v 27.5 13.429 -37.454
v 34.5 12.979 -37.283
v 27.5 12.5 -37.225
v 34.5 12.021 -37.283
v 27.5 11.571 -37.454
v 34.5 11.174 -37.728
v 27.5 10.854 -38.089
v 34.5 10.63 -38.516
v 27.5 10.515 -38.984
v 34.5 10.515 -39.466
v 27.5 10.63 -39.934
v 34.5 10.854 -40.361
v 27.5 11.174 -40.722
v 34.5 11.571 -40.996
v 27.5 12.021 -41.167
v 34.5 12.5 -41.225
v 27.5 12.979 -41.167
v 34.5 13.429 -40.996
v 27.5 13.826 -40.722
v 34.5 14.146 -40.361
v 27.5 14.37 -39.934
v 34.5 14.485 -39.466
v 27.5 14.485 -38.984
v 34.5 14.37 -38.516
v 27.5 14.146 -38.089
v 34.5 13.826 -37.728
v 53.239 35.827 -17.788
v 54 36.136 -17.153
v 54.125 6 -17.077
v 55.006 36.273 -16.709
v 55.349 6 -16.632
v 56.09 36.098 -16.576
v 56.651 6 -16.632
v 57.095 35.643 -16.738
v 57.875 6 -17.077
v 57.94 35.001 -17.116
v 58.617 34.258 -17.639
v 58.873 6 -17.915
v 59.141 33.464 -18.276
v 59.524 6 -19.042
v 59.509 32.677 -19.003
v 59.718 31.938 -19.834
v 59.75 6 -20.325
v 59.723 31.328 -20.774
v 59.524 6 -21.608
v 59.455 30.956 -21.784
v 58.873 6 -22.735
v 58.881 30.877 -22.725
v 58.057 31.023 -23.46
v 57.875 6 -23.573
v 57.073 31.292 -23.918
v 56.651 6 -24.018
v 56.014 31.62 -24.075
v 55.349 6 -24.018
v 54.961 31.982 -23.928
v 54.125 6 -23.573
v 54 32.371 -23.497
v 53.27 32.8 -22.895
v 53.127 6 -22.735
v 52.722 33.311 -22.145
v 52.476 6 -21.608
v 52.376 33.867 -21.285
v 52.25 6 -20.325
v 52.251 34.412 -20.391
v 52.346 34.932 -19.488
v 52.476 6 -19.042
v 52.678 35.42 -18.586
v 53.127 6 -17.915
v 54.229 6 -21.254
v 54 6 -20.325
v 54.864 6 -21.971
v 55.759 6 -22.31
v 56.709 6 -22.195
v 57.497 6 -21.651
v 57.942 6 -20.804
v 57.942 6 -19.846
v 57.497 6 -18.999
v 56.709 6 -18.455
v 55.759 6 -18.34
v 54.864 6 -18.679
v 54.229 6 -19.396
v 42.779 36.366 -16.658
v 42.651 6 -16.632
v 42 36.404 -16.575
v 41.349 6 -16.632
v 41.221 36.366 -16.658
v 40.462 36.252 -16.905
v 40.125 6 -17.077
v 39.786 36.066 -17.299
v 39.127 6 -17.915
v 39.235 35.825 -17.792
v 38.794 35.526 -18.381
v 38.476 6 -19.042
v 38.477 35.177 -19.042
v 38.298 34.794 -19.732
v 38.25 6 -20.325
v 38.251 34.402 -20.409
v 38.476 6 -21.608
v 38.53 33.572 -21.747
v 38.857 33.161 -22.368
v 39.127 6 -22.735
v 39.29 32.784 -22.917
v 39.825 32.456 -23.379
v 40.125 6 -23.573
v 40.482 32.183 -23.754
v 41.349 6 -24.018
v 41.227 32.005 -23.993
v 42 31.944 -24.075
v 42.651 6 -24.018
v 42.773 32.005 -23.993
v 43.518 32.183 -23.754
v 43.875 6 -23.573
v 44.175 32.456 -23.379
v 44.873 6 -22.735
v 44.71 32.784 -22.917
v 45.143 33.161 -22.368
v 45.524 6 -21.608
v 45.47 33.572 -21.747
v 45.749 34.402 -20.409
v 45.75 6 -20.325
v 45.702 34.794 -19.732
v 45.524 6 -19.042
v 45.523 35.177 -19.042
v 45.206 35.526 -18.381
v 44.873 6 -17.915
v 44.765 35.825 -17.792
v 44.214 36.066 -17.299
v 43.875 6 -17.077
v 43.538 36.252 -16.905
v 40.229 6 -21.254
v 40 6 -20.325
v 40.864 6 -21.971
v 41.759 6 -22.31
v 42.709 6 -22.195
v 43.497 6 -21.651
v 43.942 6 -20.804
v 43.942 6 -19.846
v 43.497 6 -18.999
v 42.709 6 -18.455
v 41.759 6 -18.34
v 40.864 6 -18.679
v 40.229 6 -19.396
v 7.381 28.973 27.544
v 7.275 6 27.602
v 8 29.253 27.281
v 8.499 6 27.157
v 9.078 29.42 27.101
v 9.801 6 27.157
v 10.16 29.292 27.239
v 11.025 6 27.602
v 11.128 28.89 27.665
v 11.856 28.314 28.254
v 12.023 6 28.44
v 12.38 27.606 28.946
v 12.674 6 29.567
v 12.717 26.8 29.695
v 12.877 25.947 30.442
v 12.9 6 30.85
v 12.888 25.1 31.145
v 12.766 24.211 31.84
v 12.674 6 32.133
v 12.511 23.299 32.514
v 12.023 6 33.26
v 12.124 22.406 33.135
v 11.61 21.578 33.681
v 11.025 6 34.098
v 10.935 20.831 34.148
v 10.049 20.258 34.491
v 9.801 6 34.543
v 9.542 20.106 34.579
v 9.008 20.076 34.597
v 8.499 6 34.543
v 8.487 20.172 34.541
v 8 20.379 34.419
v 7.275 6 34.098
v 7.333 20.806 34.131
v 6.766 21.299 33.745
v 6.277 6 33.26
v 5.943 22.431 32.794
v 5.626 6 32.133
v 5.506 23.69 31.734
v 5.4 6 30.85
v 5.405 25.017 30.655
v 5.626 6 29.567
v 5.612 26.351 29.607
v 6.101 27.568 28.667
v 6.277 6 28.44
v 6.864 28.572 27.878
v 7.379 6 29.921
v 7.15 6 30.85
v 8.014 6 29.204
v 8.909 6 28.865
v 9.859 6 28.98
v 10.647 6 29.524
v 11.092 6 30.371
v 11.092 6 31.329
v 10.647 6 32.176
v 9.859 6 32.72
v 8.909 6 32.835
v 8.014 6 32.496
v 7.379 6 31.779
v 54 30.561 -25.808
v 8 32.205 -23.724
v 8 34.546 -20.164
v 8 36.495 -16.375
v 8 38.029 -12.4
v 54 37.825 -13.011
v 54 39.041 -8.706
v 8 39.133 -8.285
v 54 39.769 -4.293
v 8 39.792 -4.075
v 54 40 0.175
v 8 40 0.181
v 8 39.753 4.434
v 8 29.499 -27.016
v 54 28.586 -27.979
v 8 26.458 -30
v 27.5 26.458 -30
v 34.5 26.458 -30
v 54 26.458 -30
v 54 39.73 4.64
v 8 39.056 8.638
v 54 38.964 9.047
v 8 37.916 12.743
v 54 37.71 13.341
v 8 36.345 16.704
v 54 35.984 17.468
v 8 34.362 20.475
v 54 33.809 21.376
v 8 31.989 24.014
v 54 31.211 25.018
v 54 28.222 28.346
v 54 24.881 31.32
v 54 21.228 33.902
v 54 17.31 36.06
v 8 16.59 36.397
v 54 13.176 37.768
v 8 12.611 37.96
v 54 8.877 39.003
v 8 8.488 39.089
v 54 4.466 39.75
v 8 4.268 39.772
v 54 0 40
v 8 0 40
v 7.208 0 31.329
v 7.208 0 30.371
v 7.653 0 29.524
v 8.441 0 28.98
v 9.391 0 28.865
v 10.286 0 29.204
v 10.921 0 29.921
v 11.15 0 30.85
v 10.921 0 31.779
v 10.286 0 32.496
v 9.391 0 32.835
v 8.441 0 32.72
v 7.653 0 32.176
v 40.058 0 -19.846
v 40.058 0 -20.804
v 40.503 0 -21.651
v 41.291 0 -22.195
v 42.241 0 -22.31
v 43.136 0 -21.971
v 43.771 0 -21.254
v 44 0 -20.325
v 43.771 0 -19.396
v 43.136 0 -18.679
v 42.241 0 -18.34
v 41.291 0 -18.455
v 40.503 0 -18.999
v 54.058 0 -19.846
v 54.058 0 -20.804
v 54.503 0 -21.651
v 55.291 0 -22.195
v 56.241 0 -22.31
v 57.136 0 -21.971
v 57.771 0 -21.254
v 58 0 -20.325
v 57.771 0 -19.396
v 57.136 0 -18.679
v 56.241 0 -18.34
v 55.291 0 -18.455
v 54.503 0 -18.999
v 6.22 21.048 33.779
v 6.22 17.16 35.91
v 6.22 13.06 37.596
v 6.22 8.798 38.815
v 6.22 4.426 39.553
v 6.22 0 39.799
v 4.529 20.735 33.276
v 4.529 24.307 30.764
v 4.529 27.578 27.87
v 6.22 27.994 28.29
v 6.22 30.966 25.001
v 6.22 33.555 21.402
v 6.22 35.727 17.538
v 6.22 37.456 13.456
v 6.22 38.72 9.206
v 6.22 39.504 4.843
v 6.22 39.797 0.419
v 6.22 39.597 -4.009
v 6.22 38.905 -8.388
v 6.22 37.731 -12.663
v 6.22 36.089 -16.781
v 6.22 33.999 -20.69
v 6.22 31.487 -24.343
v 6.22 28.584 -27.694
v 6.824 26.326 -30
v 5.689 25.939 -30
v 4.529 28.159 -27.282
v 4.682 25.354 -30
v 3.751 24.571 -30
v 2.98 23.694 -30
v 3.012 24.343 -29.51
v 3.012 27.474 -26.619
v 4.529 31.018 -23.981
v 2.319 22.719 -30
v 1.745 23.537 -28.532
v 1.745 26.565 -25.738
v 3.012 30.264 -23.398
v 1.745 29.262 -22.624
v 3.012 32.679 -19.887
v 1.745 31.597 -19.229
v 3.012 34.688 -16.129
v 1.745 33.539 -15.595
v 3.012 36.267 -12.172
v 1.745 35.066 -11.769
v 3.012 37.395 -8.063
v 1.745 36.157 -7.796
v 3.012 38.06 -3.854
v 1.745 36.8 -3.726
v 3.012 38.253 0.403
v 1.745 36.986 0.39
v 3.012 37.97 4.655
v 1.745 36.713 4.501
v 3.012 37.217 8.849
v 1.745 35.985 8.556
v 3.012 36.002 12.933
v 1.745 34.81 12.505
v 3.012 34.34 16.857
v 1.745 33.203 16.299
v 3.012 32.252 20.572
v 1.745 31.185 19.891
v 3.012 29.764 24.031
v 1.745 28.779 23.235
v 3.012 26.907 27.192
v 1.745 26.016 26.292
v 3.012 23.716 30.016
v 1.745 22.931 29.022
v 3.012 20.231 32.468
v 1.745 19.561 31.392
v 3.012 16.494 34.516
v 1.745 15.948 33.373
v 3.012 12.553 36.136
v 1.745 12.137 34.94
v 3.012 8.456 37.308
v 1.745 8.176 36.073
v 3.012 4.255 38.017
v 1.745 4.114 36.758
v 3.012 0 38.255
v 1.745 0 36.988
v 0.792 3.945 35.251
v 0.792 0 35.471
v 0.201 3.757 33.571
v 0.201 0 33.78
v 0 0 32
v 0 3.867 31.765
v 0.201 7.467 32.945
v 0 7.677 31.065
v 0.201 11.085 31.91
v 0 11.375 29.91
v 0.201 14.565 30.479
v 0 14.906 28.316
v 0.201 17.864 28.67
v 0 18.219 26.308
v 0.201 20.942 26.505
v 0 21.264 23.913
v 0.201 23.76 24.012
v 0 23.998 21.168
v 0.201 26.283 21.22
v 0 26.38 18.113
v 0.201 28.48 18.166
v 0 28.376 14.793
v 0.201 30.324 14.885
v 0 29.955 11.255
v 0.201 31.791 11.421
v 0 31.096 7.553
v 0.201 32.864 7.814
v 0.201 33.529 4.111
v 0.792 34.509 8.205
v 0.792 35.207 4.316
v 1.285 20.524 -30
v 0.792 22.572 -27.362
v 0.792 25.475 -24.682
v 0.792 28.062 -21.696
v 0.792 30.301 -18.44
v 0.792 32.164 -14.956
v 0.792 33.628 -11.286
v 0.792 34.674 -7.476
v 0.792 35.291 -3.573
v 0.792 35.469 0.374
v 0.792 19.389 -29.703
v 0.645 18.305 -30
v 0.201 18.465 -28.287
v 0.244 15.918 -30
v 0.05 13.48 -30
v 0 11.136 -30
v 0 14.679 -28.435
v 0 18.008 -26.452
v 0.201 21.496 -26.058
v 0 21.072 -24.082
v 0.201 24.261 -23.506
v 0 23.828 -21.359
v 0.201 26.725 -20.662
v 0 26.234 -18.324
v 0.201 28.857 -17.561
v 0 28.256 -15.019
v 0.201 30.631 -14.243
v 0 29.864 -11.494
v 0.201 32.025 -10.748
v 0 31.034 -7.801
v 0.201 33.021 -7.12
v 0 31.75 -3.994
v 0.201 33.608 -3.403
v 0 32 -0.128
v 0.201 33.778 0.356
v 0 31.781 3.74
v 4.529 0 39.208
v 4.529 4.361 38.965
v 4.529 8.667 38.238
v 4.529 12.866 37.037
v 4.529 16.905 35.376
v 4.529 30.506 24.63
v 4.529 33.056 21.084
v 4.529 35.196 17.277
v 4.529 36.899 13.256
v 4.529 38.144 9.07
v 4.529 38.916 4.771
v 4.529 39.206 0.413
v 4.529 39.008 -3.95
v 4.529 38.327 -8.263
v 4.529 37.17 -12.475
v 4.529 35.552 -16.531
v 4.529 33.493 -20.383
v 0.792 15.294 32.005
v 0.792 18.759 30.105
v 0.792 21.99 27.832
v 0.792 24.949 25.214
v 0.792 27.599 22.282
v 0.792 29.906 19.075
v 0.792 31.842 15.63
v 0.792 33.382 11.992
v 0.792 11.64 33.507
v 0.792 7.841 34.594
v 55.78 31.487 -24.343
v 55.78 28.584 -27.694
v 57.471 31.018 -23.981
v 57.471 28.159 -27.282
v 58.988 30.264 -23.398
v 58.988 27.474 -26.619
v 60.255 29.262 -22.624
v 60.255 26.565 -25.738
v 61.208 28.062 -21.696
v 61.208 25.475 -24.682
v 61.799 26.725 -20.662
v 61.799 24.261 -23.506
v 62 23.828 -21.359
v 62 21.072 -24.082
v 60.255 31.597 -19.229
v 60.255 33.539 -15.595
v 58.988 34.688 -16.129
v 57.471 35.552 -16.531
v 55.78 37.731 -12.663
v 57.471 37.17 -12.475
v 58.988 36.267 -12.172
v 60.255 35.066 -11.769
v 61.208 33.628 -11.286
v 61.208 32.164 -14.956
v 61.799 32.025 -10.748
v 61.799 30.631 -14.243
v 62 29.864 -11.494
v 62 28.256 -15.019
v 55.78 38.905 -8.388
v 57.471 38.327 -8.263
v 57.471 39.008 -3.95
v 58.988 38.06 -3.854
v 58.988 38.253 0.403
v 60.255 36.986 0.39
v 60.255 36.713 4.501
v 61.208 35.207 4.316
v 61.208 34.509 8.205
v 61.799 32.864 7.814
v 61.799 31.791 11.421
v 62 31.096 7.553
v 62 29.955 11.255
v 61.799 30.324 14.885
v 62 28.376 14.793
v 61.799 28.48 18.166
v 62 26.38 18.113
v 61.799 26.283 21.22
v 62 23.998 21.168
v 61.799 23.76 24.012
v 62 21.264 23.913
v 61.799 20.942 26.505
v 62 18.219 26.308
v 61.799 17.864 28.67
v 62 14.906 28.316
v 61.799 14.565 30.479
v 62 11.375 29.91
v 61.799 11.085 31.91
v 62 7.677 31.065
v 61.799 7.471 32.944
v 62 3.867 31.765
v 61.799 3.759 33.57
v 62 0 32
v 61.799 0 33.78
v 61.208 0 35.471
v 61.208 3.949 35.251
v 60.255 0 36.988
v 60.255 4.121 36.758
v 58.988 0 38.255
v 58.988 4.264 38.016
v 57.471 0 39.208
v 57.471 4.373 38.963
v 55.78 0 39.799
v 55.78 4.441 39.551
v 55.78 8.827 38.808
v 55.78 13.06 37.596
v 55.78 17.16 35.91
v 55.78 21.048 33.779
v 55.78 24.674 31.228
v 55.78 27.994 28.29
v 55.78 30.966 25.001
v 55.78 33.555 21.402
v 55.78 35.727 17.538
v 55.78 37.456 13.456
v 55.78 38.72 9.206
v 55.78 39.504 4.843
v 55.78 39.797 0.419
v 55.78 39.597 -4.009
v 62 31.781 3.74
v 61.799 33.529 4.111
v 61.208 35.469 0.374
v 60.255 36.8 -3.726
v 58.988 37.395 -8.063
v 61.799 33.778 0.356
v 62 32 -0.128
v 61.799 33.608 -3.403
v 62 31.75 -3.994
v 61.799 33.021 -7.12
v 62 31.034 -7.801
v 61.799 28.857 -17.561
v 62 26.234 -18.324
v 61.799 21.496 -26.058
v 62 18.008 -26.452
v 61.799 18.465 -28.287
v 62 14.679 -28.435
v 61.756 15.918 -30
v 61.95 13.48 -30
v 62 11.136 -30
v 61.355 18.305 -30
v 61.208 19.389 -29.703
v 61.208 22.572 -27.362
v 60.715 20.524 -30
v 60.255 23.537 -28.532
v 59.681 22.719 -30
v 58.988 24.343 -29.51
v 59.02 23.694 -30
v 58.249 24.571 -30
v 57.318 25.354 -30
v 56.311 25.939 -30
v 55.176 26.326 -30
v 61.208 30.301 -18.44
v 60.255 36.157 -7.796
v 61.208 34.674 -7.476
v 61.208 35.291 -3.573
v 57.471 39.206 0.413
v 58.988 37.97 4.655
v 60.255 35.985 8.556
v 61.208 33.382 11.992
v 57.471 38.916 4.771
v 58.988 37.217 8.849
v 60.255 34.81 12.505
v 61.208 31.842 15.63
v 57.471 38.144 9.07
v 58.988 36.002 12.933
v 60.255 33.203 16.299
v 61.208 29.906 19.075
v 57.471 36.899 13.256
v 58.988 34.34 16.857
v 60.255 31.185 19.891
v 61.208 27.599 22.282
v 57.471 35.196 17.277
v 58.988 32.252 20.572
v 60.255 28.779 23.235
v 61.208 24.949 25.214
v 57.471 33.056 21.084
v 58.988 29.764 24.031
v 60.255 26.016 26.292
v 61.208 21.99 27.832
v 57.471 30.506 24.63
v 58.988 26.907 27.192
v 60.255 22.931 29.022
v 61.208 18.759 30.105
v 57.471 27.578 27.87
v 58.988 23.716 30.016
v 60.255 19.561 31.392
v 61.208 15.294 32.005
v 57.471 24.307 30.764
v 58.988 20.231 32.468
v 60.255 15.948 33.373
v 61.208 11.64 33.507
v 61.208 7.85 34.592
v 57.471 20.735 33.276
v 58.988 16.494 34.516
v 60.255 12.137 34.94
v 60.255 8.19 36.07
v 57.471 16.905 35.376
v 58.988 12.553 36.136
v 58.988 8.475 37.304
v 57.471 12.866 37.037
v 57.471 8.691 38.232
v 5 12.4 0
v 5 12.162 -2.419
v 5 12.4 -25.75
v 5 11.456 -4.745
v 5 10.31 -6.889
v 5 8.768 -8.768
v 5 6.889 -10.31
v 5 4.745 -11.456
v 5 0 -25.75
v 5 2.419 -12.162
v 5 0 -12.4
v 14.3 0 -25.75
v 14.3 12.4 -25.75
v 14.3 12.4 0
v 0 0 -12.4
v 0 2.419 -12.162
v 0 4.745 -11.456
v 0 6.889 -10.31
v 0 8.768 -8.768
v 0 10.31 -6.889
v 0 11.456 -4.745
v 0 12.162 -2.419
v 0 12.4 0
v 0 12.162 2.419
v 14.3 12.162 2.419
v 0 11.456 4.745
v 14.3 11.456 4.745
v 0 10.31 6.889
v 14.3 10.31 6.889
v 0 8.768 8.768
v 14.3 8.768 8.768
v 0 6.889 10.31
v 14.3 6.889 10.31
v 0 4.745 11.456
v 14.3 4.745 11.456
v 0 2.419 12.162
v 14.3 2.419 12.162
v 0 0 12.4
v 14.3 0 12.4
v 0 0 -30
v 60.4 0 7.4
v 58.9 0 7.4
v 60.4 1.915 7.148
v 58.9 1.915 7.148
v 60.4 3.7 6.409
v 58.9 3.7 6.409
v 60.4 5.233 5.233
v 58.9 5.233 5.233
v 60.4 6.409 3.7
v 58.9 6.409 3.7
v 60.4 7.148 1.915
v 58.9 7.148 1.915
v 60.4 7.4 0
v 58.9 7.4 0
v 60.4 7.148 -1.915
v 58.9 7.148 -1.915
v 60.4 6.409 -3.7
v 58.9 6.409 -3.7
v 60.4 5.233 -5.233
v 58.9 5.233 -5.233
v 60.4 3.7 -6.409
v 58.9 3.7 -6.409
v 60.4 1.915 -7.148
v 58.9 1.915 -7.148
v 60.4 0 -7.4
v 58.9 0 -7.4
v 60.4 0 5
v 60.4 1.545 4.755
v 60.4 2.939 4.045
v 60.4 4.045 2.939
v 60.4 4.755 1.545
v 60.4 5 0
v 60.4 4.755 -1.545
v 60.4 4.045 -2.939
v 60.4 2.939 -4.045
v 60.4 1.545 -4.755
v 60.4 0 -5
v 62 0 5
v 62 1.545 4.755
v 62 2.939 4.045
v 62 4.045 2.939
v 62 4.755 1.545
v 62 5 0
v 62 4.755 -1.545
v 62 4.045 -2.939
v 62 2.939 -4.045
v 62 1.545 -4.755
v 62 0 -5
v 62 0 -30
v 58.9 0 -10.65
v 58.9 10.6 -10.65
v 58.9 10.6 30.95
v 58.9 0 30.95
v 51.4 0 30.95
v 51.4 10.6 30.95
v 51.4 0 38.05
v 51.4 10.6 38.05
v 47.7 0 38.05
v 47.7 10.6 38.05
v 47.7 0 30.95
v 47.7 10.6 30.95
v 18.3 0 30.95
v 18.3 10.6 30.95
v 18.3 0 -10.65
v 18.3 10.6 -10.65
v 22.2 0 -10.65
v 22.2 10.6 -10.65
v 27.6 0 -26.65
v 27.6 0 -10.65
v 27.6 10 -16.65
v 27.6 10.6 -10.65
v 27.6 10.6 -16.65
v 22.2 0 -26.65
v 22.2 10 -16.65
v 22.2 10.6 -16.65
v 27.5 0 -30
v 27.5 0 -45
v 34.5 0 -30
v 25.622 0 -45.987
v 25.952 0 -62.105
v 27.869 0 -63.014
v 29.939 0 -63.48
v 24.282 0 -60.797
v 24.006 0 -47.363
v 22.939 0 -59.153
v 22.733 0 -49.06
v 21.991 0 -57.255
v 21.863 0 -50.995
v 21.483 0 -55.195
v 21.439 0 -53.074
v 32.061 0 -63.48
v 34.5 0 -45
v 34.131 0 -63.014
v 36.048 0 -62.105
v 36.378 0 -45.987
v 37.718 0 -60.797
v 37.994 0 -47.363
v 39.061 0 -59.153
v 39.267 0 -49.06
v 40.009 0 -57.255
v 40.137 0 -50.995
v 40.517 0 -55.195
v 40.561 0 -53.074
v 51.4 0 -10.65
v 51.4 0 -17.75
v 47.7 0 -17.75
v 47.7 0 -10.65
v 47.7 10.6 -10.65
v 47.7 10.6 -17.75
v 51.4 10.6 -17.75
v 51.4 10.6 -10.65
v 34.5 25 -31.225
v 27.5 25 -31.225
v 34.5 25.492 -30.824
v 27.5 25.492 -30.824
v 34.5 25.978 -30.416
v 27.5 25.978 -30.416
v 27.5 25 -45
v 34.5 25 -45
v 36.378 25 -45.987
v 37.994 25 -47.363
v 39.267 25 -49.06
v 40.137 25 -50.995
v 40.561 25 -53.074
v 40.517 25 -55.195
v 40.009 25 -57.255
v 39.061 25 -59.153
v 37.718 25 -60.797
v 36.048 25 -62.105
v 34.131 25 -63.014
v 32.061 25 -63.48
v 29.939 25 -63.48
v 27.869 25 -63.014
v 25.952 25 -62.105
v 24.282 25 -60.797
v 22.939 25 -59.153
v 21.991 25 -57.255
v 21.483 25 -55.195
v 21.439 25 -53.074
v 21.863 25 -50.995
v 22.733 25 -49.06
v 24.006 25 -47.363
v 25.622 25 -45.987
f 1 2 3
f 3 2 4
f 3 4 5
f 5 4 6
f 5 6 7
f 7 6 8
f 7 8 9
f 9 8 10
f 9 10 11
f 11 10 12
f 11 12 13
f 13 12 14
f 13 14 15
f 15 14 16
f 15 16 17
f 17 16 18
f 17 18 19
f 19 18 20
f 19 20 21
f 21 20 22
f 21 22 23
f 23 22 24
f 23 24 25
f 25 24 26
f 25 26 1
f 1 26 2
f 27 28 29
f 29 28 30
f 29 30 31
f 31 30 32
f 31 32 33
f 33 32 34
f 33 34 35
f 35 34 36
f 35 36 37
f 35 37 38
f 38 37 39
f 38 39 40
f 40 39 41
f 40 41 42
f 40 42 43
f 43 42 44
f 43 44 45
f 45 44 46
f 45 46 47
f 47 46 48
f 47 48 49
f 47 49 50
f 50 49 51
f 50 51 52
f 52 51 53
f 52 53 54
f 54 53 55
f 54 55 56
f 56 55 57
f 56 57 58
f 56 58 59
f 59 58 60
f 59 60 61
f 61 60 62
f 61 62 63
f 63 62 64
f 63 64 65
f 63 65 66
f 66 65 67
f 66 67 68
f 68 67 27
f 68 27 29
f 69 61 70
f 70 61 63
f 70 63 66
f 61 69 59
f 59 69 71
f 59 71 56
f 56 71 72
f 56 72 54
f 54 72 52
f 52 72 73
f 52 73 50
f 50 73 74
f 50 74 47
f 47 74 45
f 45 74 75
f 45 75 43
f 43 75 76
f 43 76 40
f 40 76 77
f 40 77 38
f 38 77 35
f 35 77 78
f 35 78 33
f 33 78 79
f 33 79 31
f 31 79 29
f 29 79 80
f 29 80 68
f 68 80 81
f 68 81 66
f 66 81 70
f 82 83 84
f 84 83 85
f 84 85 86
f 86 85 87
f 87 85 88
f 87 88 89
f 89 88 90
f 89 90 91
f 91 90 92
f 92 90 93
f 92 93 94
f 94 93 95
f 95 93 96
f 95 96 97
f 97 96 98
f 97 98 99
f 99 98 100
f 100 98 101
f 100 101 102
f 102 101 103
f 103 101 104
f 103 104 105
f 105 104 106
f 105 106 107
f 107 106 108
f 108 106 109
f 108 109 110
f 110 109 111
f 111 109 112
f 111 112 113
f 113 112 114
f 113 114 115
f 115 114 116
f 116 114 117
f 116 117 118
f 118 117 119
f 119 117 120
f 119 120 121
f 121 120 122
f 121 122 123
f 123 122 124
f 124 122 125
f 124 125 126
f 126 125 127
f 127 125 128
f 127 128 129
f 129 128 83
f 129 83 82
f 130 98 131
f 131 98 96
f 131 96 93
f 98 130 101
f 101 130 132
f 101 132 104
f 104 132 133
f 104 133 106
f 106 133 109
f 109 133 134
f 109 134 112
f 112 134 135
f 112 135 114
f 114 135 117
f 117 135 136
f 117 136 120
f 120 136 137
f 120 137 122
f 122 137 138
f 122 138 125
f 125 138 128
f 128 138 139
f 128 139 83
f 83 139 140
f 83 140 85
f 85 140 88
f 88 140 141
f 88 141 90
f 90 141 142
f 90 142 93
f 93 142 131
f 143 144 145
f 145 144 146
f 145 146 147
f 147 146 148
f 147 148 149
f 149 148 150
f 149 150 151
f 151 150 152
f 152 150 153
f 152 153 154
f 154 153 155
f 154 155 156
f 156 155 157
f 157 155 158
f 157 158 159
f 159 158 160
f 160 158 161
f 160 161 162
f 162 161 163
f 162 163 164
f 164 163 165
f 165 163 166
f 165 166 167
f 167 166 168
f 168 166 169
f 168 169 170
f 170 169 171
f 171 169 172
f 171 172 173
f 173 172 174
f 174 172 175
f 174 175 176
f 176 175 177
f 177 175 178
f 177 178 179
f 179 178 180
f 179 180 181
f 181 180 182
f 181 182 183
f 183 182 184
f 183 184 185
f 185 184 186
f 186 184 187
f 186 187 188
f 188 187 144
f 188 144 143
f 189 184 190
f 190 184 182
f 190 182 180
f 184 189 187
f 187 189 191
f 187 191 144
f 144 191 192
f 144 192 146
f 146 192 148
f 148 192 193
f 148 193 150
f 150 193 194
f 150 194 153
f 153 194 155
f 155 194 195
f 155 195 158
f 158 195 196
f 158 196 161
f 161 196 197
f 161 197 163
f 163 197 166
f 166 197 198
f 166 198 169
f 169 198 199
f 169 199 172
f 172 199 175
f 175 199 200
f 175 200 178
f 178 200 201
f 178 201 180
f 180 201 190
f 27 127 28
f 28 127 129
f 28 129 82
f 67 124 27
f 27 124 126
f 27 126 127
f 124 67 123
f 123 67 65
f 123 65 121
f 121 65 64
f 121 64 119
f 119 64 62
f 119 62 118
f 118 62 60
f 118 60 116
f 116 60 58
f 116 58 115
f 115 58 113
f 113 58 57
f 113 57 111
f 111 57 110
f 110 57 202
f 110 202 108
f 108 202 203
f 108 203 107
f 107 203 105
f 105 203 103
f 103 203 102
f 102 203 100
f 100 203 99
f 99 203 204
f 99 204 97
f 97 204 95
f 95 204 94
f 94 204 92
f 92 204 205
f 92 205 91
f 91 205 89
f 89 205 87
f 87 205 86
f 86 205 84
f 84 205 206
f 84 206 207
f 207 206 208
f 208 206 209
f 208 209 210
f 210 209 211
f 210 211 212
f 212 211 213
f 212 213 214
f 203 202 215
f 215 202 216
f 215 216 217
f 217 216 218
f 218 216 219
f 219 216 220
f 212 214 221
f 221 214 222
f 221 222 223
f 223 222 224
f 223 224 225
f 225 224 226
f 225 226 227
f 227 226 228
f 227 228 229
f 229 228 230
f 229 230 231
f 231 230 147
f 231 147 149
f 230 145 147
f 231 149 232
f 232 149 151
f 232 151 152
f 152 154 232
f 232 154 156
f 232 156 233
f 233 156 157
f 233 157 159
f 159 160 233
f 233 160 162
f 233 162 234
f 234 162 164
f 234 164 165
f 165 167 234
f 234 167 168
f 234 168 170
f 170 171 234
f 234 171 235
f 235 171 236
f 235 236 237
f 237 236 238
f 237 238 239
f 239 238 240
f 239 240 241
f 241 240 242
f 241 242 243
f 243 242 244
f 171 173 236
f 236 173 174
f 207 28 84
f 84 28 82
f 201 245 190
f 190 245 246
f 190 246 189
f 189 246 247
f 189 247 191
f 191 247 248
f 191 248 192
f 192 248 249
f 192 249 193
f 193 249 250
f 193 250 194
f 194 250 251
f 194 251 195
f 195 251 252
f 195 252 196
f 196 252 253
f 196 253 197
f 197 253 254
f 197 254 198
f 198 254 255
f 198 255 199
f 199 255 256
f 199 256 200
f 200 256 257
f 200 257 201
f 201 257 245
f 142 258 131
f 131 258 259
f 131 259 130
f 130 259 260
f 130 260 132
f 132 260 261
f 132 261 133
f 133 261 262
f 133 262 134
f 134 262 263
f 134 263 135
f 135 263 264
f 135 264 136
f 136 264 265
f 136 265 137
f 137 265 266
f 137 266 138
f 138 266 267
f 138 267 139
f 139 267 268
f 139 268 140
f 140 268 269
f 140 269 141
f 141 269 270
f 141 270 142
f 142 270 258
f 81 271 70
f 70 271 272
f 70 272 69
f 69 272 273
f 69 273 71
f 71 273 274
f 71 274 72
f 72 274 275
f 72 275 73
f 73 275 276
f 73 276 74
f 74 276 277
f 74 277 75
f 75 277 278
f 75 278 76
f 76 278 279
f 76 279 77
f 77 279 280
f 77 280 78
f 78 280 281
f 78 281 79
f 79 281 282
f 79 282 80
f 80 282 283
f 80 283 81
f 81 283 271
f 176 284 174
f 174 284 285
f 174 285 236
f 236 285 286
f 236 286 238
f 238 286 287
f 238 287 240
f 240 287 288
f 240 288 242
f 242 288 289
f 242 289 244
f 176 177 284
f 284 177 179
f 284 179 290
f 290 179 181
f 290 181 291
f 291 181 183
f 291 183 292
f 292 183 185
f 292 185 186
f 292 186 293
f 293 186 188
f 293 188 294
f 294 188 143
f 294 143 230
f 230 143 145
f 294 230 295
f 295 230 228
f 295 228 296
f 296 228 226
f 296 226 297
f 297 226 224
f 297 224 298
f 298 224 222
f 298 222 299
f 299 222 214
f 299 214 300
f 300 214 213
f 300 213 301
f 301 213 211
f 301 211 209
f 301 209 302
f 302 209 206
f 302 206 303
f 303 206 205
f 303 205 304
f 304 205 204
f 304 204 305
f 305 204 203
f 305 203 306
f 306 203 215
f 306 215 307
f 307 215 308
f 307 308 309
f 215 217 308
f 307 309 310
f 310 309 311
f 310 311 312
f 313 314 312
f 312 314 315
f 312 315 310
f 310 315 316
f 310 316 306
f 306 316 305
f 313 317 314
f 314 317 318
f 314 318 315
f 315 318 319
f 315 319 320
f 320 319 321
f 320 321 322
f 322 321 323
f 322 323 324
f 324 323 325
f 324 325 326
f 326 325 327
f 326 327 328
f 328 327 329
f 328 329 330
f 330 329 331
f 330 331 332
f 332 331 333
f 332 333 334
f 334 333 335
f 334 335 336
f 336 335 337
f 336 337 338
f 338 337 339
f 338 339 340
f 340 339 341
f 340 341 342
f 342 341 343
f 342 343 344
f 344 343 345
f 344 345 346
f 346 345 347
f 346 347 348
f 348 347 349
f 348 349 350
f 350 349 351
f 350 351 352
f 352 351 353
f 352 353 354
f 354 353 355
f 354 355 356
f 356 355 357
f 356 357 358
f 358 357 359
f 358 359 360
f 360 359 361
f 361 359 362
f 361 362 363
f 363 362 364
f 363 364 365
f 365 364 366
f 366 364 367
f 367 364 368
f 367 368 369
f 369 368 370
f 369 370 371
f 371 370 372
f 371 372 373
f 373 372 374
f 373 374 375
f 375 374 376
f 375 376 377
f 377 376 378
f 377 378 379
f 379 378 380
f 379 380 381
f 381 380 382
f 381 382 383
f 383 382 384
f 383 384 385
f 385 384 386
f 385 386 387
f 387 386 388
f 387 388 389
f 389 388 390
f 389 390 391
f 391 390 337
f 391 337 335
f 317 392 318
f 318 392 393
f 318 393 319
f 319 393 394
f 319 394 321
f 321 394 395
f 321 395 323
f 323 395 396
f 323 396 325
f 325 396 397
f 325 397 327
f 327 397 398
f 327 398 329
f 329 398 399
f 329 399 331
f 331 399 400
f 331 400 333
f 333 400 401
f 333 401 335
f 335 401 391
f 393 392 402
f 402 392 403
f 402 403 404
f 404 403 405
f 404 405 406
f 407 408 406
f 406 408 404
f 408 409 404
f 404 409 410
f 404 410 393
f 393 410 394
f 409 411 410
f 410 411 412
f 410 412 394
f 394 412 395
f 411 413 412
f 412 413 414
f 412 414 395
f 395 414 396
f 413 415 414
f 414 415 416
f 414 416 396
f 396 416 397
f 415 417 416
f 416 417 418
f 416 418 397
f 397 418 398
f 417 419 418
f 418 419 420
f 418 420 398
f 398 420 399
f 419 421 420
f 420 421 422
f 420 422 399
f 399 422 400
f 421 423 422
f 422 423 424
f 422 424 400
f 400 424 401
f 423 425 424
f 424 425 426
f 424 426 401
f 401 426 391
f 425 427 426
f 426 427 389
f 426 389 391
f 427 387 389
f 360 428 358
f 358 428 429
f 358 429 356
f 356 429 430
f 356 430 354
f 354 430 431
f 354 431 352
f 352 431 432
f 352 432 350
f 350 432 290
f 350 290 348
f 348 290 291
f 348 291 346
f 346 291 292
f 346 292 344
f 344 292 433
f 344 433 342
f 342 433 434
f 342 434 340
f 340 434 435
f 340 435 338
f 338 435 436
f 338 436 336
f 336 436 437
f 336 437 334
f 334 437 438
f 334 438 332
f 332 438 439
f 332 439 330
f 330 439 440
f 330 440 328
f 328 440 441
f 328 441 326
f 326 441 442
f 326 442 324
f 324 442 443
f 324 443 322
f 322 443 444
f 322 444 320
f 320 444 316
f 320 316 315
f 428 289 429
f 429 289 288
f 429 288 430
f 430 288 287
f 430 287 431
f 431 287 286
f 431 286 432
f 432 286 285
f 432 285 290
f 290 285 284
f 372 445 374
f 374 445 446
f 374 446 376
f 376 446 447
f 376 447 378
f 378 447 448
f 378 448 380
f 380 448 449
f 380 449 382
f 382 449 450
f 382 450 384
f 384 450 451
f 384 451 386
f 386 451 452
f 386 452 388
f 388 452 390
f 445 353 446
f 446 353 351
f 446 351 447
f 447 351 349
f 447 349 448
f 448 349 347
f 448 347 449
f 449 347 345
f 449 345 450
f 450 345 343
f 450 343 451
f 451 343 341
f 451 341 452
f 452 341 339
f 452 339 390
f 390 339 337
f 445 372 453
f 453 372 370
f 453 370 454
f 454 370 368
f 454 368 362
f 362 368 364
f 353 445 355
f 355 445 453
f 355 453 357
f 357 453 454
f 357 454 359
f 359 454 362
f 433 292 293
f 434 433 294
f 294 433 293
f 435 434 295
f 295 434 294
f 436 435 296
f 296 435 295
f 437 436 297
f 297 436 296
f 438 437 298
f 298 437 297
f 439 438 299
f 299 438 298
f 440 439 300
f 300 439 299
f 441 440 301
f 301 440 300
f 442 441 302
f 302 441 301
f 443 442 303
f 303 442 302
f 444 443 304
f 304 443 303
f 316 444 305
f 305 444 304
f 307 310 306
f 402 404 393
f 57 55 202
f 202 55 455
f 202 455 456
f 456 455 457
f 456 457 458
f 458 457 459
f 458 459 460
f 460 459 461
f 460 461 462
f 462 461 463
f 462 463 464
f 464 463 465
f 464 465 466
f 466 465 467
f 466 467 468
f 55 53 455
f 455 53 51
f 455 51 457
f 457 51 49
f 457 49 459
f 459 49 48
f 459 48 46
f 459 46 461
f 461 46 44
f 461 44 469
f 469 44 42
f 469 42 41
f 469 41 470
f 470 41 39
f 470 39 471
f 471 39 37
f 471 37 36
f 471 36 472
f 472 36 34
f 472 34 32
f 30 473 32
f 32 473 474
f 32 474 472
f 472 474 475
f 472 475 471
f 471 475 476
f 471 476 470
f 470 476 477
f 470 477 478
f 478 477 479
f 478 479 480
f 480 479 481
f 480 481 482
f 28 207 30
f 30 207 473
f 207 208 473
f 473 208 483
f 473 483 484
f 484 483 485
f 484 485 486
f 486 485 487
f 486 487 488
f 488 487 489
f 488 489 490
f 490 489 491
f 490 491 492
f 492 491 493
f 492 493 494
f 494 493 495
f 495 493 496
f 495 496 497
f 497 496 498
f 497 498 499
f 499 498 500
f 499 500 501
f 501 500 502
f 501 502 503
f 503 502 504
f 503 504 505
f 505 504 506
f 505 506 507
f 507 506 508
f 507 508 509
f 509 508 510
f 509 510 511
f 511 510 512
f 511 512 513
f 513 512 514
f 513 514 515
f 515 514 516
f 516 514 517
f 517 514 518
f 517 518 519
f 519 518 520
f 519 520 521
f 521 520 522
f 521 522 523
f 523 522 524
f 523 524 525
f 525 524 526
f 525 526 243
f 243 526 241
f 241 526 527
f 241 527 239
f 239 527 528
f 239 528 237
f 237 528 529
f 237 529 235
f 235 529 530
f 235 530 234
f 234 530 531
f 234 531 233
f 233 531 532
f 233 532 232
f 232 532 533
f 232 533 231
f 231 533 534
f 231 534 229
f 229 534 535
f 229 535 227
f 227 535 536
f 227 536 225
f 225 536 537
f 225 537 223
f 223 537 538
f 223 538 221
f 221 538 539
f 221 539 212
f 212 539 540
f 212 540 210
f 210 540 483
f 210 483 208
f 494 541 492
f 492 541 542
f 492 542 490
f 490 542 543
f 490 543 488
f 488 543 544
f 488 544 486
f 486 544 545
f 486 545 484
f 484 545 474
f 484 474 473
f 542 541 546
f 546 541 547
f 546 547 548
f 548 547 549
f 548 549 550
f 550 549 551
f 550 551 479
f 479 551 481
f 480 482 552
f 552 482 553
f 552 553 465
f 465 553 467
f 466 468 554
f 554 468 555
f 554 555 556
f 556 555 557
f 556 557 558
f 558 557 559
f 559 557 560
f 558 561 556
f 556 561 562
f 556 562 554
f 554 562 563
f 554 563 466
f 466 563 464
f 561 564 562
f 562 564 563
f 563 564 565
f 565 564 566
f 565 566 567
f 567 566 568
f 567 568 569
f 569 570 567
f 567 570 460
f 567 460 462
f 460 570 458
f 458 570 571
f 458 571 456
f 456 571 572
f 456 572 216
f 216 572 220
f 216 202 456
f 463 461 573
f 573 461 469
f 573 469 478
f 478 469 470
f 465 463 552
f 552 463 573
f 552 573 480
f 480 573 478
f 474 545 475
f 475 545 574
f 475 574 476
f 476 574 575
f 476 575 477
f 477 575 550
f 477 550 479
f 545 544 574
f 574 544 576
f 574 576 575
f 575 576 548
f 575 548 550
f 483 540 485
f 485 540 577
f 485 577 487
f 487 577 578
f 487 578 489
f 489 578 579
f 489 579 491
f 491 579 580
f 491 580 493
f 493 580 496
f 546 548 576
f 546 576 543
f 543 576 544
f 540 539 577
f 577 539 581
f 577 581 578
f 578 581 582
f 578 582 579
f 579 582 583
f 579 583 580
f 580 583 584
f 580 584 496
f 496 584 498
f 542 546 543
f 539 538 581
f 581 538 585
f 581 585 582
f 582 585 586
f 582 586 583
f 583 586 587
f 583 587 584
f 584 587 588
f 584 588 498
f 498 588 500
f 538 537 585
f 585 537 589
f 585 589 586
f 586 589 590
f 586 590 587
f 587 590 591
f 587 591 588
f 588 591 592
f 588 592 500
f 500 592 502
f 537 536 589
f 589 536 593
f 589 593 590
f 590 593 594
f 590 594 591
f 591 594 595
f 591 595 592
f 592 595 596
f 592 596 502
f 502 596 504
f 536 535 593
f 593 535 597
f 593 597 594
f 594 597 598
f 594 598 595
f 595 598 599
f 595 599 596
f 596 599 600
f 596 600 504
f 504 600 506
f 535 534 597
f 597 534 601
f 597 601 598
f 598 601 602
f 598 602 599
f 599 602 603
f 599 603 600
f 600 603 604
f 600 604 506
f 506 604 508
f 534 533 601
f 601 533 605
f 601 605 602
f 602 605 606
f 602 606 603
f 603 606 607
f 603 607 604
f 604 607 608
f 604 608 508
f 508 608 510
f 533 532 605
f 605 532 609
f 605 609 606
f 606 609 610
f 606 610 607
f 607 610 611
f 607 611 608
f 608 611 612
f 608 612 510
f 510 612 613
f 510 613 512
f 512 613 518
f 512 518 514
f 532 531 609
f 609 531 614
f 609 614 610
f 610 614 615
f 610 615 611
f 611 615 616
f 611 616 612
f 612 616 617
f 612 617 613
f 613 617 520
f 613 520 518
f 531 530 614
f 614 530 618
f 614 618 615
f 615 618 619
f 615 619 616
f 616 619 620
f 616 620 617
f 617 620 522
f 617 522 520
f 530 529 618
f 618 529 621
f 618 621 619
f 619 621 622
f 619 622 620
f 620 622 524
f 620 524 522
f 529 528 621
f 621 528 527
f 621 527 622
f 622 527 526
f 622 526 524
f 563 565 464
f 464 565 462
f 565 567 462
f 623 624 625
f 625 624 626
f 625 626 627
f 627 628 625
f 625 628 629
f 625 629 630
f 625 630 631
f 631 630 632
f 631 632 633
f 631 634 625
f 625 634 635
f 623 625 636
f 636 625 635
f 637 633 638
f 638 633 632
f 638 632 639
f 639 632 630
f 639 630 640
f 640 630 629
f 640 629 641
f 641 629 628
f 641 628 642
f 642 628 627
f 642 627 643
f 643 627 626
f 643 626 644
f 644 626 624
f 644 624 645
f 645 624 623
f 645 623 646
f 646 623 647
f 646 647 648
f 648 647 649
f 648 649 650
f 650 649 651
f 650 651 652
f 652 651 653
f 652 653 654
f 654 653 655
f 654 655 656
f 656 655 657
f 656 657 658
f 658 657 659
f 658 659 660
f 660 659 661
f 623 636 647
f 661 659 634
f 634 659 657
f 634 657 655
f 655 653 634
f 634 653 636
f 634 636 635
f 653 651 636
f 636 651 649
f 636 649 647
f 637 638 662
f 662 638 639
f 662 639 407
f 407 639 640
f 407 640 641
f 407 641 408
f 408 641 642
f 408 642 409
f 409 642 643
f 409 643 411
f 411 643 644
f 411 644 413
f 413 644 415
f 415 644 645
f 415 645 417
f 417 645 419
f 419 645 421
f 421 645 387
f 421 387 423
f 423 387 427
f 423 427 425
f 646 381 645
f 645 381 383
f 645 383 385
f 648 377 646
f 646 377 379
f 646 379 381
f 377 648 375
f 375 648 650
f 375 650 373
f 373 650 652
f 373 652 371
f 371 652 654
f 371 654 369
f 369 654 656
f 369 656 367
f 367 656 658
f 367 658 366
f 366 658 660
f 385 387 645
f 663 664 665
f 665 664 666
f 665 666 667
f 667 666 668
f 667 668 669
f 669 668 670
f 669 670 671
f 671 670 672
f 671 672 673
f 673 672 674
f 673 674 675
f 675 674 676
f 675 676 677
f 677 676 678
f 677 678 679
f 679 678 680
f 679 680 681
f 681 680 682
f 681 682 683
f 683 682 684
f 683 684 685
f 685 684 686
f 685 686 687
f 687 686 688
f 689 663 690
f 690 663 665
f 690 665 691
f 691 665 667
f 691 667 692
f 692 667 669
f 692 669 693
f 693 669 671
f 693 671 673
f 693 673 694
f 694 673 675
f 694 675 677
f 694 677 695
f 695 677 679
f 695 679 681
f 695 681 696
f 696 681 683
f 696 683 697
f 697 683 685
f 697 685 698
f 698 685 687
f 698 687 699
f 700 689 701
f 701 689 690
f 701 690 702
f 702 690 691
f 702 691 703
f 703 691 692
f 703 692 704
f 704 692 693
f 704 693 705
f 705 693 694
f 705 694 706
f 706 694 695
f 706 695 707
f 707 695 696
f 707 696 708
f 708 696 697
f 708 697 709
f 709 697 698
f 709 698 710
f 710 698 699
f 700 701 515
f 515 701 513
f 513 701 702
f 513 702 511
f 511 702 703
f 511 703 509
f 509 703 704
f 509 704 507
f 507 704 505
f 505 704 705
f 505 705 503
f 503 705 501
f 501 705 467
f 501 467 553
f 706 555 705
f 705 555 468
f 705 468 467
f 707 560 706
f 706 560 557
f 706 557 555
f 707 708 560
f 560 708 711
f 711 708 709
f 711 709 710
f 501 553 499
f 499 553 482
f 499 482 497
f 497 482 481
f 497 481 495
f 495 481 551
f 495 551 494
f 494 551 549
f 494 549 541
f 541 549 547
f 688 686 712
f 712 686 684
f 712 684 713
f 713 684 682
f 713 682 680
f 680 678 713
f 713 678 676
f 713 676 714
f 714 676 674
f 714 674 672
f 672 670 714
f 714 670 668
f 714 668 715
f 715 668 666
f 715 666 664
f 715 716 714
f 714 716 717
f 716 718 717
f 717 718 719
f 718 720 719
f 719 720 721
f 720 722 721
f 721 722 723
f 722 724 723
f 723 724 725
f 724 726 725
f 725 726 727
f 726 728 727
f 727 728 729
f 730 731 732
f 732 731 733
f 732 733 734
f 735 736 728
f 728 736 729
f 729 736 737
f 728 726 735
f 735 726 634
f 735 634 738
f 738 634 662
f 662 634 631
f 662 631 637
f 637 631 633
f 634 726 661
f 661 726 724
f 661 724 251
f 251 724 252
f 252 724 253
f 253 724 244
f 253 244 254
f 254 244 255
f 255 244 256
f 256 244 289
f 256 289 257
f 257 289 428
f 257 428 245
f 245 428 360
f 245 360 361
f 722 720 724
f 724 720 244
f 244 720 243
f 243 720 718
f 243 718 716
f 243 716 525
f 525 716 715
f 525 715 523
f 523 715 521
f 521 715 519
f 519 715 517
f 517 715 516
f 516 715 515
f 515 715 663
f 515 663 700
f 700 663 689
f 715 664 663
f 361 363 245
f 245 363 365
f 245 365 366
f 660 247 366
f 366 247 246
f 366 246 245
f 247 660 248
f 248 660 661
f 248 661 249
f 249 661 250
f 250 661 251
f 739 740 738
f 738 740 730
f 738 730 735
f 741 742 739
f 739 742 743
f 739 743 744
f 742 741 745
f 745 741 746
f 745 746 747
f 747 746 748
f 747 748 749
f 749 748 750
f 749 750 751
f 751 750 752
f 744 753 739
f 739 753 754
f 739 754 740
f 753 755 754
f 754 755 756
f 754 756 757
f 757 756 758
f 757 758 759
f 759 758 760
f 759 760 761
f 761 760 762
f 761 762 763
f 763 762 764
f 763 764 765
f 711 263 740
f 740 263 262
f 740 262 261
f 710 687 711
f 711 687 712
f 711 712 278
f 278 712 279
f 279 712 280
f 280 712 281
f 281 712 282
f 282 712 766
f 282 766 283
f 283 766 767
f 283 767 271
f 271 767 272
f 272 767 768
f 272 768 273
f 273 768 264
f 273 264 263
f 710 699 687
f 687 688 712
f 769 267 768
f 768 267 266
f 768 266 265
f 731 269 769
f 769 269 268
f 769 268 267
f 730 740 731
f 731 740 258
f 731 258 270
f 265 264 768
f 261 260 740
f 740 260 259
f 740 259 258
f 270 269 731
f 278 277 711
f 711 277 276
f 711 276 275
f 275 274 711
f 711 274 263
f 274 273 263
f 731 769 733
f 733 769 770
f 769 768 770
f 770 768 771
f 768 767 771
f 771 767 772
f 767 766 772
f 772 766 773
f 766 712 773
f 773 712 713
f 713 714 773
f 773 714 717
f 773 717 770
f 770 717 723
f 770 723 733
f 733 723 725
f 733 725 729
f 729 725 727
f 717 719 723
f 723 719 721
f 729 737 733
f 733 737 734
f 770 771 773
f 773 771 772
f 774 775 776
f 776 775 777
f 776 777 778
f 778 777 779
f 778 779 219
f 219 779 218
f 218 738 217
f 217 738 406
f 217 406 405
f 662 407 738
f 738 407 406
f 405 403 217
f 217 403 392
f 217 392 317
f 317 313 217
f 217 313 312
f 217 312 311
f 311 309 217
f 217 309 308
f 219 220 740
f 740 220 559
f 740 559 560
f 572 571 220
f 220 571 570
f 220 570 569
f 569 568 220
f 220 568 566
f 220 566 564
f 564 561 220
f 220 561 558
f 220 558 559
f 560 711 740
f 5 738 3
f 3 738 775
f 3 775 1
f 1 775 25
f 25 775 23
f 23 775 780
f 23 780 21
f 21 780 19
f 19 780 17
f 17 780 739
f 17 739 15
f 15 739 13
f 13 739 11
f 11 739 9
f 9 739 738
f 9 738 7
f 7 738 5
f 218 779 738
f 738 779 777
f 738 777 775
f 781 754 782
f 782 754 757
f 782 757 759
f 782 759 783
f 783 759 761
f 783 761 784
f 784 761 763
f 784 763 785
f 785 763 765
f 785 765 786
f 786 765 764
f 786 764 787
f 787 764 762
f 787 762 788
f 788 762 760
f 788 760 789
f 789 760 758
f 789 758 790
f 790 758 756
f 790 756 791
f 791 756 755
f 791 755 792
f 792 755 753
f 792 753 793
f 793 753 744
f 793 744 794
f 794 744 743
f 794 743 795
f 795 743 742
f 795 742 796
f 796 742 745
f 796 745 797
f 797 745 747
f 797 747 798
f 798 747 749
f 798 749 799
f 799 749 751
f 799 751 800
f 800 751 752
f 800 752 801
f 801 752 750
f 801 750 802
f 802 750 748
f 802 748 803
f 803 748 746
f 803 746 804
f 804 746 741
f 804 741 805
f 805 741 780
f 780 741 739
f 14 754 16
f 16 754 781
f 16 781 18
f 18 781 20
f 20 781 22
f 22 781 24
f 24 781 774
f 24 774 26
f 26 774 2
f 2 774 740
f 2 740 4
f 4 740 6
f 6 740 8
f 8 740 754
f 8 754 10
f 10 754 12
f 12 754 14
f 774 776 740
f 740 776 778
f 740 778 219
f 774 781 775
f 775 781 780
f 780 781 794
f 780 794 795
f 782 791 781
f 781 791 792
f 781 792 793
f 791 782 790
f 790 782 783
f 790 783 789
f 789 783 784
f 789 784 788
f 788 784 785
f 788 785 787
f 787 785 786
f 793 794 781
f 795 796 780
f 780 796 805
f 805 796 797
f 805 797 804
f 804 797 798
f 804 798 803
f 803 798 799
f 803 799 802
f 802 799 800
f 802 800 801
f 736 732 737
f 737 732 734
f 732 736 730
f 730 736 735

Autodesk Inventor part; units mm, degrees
ref_plane "YZ Plane" through (0, 0, 0) normal (1, 0, 0) x (0, 1, 0)
ref_plane "XZ Plane" through (0, 0, 0) normal (0, 1, 0) x (-1, 0, 0)
sketch "Sketch1" plane through (0, 0, 0) normal (1, 0, 0) x (0, 1, 0)
  arc A0 (26.4575, -30) -> (0, 40) centre (0, 0) ccw
  line L0 (0, 40) -> (0, -30)
  line L1 (0, -30) -> (26.4575, -30)
  arc A1 (0, 40) -> (26.4575, -30) centre (0, 0) ccw construction
  dimension "d0" = 80
  dimension "d1" = 70
extrude "Extrusion1" add sketch "Sketch1" along normal blind 62
fillet "Fillet1" radius 8 2 edges at (0, 37.4166, 14.1421) (62, 37.4166, 14.1421)
sketch "Sketch2" plane through (0, 0, -30) normal (0, -1, 0) x (1, 0, 0)
  circle A0 centre (31, -23.9392) radius 9.6
  line L0 (0, 0) -> (62, 0) projected
  line L1 (31, -23.9392) -> (31, 0) construction
  line L2 (34.5, 0) -> (27.5, 0)
  line L3 (27.5, 0) -> (27.5, -15)
  line L4 (34.5, 0) -> (34.5, -15)
  point P0 (0, 30)
  dimension "d6" = 19.2
  dimension "d7" = 3.5
  dimension "d8" = 3.5
  dimension "d61" = 15
extrude "Extrusion2" add sketch "Sketch2" against normal blind 25
sketch "Sketch3" plane through (34.5, 0, -30) normal (1, 0, 0) x (0, 0, -1)
  line L0 (0, 25) -> (15, 25) projected
  line L1 (0, 11.1355) -> (0, 26.4575) projected
  arc A0 (1.225, 25) -> (0, 26.4575) centre (-30.0052, -0.0046) ccw
  arc A1 (0, 26.4575) -> (-70, 0) centre (-30, 0) ccw projected
  line L2 (0, 26.4575) -> (1.225, 25) construction
  point P0 (-30, 0)
  dimension "d13" = 1.225
extrude "Extrusion3" add sketch "Sketch3" against normal up to surface (7 mm away)
sketch "Sketch4" plane through (0, 0, -30) normal (0, -1, 0) x (1, 0, 0)
  line L0 (58.9, 60.95) -> (51.4, 60.95)
  line L1 (18.3, 60.95) -> (18.3, 19.35)
  line L2 (58.9, 19.35) -> (58.9, 60.95)
  line L3 (58.9, 37.4) -> (60.4, 37.4)
  line L4 (60.4, 37.4) -> (60.4, 30)
  line L5 (60.4, 22.6) -> (58.9, 22.6)
  line L6 (58.9, 22.6) -> (58.9, 37.4)
  line L7 (60.4, 35) -> (62, 35)
  line L8 (62, 35) -> (62, 30)
  line L9 (62, 25) -> (60.4, 25)
  line L10 (60.4, 25) -> (60.4, 35)
  line L11 (47.7, 19.35) -> (47.7, 12.25)
  line L12 (47.7, 12.25) -> (51.4, 12.25)
  line L13 (51.4, 12.25) -> (51.4, 19.35)
  line L14 (22.2, 19.35) -> (22.2, 13.35)
  line L15 (22.2, 13.35) -> (27.6, 13.35)
  line L16 (27.6, 13.35) -> (27.6, 19.35)
  line L17 (47.7, 60.95) -> (47.7, 68.05)
  line L18 (47.7, 68.05) -> (51.4, 68.05)
  line L19 (51.4, 68.05) -> (51.4, 60.95)
  line L20 (47.7, 60.95) -> (18.3, 60.95)
  line L21 (51.4, 19.35) -> (58.9, 19.35)
  line L22 (18.3, 19.35) -> (22.2, 19.35)
  line L23 (27.6, 19.35) -> (47.7, 19.35)
  line L24 (62, 62) -> (62, 0) projected
  line L25 (54, 0) -> (54, 70) projected
  line L26 (0, 30) -> (48.0104, 30) construction
  line L27 (62, 30) -> (58.9, 30)
  line L28 (62, 30) -> (62, 25)
  line L29 (60.4, 30) -> (60.4, 22.6)
  dimension "d16" = 40.6
  dimension "d17" = 41.6
  dimension "d18" = 10
  dimension "d19" = 14.8
  dimension "d20" = 1.6
  dimension "d21" = 1.5
  dimension "d22" = 10.65
  dimension "d23" = 3.7
  dimension "d24" = 7.5
  dimension "d25" = 7.1
  dimension "d26" = 7.1
  dimension "d27" = 3.9
  dimension "d28" = 5.4
  dimension "d29" = 6
  dimension "d30" = 5
extrude "Extrusion4" cut sketch "Sketch4" against normal blind 10.6 contours L2 L21 L25 L0 | L25 L21 L13 L12 L11 L23 L16 L15 L14 L22 L1 L20 L17 L18 L19 L0
revolve "Revolution1" cut sketch "Sketch4" angle 360 about axis through (62, 0, 0) along (-1, 0, 0) contours L27 L10 L29 L5 L2 | L27 L24 L9 L10
sketch "Sketch5" plane through (0, 0, -30) normal (0, -1, 0) x (1, 0, 0)
  line L0 (0, 30) -> (14.3, 30)
  line L1 (14.3, 30) -> (14.3, 17.6)
  line L2 (14.3, 17.6) -> (0, 17.6)
  line L3 (0, 17.6) -> (0, 30)
  dimension "d34" = 24.8
  dimension "d35" = 14.3
revolve "Revolution2" cut sketch "Sketch5" angle 360 about axis through (0, 0, 0) along (1, 0, 0)
sketch "Sketch6" plane through (8, 0, 40) normal (0, -1, 0) x (1, 0, 0)
  line L0 (6.3, -52.4) -> (-8, -52.4) projected
  line L1 (6.3, -27.6) -> (6.3, -52.4) projected
  line L2 (-8, -27.6) -> (6.3, -27.6) projected
  line L3 (-8, -52.4) -> (-8, -27.6) projected
  line L4 (6.3, -52.4) -> (-3, -52.4)
  line L5 (-3, -52.4) -> (-3, -65.75)
  line L6 (-3, -65.75) -> (6.3, -65.75)
  line L7 (6.3, -65.75) -> (6.3, -52.4)
  line L8 (-8, -70) -> (19.5, -70) projected
  line L9 (-3, -52.4) -> (6.3, -52.4)
  line L10 (6.3, -52.4) -> (6.3, -40)
  line L11 (6.3, -40) -> (-3, -40)
  line L12 (-3, -40) -> (-3, -52.4)
  point P0 (-8, -40)
  dimension "d38" = 5
  dimension "d39" = 4.25
extrude "Extrusion5" cut sketch "Sketch6" against normal blind 12.4 contours L7 L6 L5 L0 | L0 L12 L11 L1
sketch "Sketch7" plane through (8, 0, 40) normal (0, -1, 0) x (1, 0, 0)
  line L0 (-3, -65.75) -> (-3, -52.4) projected
  line L1 (-3, -52.4) -> (-8, -52.4) projected
  line L2 (-8, -52.4) -> (-8, -70) projected
  line L3 (-8, -70) -> (19.5, -70) projected
  line L4 (19.5, -70) -> (19.5, -85) projected
  arc A0 (19.5, -85) -> (26.5, -85) centre (23, -93.9392) ccw projected
  line L5 (26.5, -85) -> (26.5, -70) projected
  line L6 (26.5, -70) -> (54, -70) projected
  line L7 (54, -45) -> (54, -70) projected
  line L8 (54, -45) -> (52.4, -45) projected
  line L9 (52.4, -45) -> (52.4, -47.4) projected
  line L10 (52.4, -47.4) -> (50.9, -47.4) projected
  line L11 (50.9, -47.4) -> (50.9, -50.65) projected
  line L12 (50.9, -50.65) -> (43.4, -50.65) projected
  line L13 (43.4, -50.65) -> (43.4, -57.75) projected
  line L14 (43.4, -57.75) -> (39.7, -57.75) projected
  line L15 (39.7, -57.75) -> (39.7, -50.65) projected
  line L16 (39.7, -50.65) -> (19.6, -50.65) projected
  line L17 (19.6, -50.65) -> (19.6, -56.65) projected
  line L18 (19.6, -56.65) -> (14.2, -56.65) projected
  line L19 (14.2, -56.65) -> (14.2, -50.65) projected
  line L20 (14.2, -50.65) -> (10.3, -50.65) projected
  line L21 (10.3, -50.65) -> (10.3, -9.05) projected
  line L22 (10.3, -9.05) -> (39.7, -9.05) projected
  line L23 (39.7, -9.05) -> (39.7, -1.95) projected
  line L24 (39.7, -1.95) -> (43.4, -1.95) projected
  line L25 (43.4, -1.95) -> (43.4, -9.05) projected
  line L26 (43.4, -9.05) -> (50.9, -9.05) projected
  line L27 (50.9, -9.05) -> (50.9, -32.6) projected
  line L28 (50.9, -32.6) -> (52.4, -32.6) projected
  line L29 (52.4, -32.6) -> (52.4, -35) projected
  line L30 (52.4, -35) -> (54, -35) projected
  line L31 (54, -8) -> (54, -35) projected
  arc A1 (54, -8) -> (46, 0) centre (46, -8) ccw projected
  line L32 (0, 0) -> (46, 0) projected
  arc A2 (0, 0) -> (-8, -8) centre (0, -8) ccw projected
  line L33 (-8, -8) -> (-8, -27.6) projected
  line L34 (-8, -27.6) -> (6.3, -27.6) projected
  line L35 (6.3, -27.6) -> (6.3, -65.75) projected
  line L36 (6.3, -65.75) -> (-3, -65.75) projected
  circle A3 centre (1.15, -9.15) radius 2
  circle A4 centre (34, -60.325) radius 2
  circle A5 centre (48, -60.325) radius 2
  point P0 (-8, -40)
  dimension "d42" = 4
  dimension "d43" = 4
  dimension "d44" = 18.3
  dimension "d45" = 9.15
  dimension "d46" = 9.15
  dimension "d47" = 19.35
  dimension "d48" = 9.675
  dimension "d49" = 20
  dimension "d52" = 4
  dimension "d53" = 6
  dimension "d54" = 9.675
extrude "Extrusion6" cut sketch "Sketch7" against normal through all contours A3 | A4 | A5
ref_plane "Work Plane1" through (8, 6, 40) normal (0, -1, 0) x (1, 0, 0)
sketch "Sketch8" plane through (8, 6, 40) normal (0, -1, 0) x (1, 0, 0)
  circle A0 centre (48, -60.325) radius 2 projected
  circle A1 centre (34, -60.325) radius 2 projected
  circle A2 centre (1.15, -9.15) radius 2 projected
  circle A3 centre (1.15, -9.15) radius 3.75
  circle A4 centre (34, -60.325) radius 3.75
  circle A5 centre (48, -60.325) radius 3.75
  point P0 (-8, -40)
  dimension "d56" = 7.5
  dimension "d57" = 7.5
  dimension "d58" = 7.5
extrude "Extrusion7" cut sketch "Sketch8" against normal through all contours A0 | A1 | A2 | A3 | A4 | A5
sketch "Sketch9" plane through (34.5, 0, -30) normal (1, 0, 0) x (0, 0, -1)
  circle A0 centre (9.225, 12.5) radius 2
  line L0 (1.225, 25) -> (15, 25) projected
  line L1 (15, 0) -> (15, 25) projected
  line L2 (0, 0) -> (0, 11.1355) projected
  point P0 (-30, 0)
  point P1 (8.1125, 25)
  dimension "d62" = 4
  dimension "d63" = 12.5
  dimension "d67" = 9.225
extrude "Extrusion8" cut sketch "Sketch9" against normal through all
chamfer "Chamfer1" distance 10 angle 45 1 edges at (24.9, 0, -16.65)
equation "\"d26\" = d25"
equation "\"d45\" = 0.5 * d44"
equation "\"d46\" = d45"
equation "\"d48\" = 0.5 * d47"
equation "\"d54\" = d48"
properties part number "Arm_1Up"
